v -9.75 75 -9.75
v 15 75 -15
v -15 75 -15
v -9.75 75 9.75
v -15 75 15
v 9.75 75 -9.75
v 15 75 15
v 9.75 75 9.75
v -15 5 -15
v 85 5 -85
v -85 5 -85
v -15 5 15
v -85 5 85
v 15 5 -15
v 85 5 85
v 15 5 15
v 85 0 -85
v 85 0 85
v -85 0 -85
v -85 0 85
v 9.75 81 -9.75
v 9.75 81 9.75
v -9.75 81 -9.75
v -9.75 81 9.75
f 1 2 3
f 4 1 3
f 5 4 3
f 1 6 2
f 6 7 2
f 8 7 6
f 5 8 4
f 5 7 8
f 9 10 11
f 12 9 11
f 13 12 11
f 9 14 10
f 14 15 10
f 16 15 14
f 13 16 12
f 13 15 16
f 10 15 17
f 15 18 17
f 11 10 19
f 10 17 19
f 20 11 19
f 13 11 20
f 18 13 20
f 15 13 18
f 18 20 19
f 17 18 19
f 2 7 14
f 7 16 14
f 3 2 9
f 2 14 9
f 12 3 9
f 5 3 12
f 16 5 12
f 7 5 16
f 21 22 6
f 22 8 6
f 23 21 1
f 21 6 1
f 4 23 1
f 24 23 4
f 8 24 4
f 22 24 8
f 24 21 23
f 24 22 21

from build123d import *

# Parameters (mm, degrees)
SKETCH1_W           = 170
SKETCH1_H           = 170
BOSS_EXTRUDE1_DEPTH = 5
SKETCH2_W           = 30
SKETCH2_H           = 30
BOSS_EXTRUDE2_DEPTH = 70
SKETCH3_W           = 19.5
SKETCH3_H           = 19.5
BOSS_EXTRUDE3_DEPTH = 6


with BuildPart() as part:
    # Sketch1 → Boss-Extrude1 (new body)
    with BuildSketch(Plane(origin=(0, 0, 0), x_dir=(1, 0, 0), z_dir=(0, 1, 0))):
        Rectangle(SKETCH1_W, SKETCH1_H)
    extrude(amount=BOSS_EXTRUDE1_DEPTH)

    # Sketch2 → Boss-Extrude2 (add)
    with BuildSketch(Plane(origin=(0, 5, 0), x_dir=(1, 0, 0), z_dir=(0, 1, 0))):
        Rectangle(SKETCH2_W, SKETCH2_H)
    extrude(amount=BOSS_EXTRUDE2_DEPTH)

    # Sketch3 → Boss-Extrude3 (add)
    with BuildSketch(Plane(origin=(0, 75, 0), x_dir=(1, 0, 0), z_dir=(0, 1, 0))):
        Rectangle(SKETCH3_W, SKETCH3_H)
    extrude(amount=BOSS_EXTRUDE3_DEPTH)


solid = part.part
